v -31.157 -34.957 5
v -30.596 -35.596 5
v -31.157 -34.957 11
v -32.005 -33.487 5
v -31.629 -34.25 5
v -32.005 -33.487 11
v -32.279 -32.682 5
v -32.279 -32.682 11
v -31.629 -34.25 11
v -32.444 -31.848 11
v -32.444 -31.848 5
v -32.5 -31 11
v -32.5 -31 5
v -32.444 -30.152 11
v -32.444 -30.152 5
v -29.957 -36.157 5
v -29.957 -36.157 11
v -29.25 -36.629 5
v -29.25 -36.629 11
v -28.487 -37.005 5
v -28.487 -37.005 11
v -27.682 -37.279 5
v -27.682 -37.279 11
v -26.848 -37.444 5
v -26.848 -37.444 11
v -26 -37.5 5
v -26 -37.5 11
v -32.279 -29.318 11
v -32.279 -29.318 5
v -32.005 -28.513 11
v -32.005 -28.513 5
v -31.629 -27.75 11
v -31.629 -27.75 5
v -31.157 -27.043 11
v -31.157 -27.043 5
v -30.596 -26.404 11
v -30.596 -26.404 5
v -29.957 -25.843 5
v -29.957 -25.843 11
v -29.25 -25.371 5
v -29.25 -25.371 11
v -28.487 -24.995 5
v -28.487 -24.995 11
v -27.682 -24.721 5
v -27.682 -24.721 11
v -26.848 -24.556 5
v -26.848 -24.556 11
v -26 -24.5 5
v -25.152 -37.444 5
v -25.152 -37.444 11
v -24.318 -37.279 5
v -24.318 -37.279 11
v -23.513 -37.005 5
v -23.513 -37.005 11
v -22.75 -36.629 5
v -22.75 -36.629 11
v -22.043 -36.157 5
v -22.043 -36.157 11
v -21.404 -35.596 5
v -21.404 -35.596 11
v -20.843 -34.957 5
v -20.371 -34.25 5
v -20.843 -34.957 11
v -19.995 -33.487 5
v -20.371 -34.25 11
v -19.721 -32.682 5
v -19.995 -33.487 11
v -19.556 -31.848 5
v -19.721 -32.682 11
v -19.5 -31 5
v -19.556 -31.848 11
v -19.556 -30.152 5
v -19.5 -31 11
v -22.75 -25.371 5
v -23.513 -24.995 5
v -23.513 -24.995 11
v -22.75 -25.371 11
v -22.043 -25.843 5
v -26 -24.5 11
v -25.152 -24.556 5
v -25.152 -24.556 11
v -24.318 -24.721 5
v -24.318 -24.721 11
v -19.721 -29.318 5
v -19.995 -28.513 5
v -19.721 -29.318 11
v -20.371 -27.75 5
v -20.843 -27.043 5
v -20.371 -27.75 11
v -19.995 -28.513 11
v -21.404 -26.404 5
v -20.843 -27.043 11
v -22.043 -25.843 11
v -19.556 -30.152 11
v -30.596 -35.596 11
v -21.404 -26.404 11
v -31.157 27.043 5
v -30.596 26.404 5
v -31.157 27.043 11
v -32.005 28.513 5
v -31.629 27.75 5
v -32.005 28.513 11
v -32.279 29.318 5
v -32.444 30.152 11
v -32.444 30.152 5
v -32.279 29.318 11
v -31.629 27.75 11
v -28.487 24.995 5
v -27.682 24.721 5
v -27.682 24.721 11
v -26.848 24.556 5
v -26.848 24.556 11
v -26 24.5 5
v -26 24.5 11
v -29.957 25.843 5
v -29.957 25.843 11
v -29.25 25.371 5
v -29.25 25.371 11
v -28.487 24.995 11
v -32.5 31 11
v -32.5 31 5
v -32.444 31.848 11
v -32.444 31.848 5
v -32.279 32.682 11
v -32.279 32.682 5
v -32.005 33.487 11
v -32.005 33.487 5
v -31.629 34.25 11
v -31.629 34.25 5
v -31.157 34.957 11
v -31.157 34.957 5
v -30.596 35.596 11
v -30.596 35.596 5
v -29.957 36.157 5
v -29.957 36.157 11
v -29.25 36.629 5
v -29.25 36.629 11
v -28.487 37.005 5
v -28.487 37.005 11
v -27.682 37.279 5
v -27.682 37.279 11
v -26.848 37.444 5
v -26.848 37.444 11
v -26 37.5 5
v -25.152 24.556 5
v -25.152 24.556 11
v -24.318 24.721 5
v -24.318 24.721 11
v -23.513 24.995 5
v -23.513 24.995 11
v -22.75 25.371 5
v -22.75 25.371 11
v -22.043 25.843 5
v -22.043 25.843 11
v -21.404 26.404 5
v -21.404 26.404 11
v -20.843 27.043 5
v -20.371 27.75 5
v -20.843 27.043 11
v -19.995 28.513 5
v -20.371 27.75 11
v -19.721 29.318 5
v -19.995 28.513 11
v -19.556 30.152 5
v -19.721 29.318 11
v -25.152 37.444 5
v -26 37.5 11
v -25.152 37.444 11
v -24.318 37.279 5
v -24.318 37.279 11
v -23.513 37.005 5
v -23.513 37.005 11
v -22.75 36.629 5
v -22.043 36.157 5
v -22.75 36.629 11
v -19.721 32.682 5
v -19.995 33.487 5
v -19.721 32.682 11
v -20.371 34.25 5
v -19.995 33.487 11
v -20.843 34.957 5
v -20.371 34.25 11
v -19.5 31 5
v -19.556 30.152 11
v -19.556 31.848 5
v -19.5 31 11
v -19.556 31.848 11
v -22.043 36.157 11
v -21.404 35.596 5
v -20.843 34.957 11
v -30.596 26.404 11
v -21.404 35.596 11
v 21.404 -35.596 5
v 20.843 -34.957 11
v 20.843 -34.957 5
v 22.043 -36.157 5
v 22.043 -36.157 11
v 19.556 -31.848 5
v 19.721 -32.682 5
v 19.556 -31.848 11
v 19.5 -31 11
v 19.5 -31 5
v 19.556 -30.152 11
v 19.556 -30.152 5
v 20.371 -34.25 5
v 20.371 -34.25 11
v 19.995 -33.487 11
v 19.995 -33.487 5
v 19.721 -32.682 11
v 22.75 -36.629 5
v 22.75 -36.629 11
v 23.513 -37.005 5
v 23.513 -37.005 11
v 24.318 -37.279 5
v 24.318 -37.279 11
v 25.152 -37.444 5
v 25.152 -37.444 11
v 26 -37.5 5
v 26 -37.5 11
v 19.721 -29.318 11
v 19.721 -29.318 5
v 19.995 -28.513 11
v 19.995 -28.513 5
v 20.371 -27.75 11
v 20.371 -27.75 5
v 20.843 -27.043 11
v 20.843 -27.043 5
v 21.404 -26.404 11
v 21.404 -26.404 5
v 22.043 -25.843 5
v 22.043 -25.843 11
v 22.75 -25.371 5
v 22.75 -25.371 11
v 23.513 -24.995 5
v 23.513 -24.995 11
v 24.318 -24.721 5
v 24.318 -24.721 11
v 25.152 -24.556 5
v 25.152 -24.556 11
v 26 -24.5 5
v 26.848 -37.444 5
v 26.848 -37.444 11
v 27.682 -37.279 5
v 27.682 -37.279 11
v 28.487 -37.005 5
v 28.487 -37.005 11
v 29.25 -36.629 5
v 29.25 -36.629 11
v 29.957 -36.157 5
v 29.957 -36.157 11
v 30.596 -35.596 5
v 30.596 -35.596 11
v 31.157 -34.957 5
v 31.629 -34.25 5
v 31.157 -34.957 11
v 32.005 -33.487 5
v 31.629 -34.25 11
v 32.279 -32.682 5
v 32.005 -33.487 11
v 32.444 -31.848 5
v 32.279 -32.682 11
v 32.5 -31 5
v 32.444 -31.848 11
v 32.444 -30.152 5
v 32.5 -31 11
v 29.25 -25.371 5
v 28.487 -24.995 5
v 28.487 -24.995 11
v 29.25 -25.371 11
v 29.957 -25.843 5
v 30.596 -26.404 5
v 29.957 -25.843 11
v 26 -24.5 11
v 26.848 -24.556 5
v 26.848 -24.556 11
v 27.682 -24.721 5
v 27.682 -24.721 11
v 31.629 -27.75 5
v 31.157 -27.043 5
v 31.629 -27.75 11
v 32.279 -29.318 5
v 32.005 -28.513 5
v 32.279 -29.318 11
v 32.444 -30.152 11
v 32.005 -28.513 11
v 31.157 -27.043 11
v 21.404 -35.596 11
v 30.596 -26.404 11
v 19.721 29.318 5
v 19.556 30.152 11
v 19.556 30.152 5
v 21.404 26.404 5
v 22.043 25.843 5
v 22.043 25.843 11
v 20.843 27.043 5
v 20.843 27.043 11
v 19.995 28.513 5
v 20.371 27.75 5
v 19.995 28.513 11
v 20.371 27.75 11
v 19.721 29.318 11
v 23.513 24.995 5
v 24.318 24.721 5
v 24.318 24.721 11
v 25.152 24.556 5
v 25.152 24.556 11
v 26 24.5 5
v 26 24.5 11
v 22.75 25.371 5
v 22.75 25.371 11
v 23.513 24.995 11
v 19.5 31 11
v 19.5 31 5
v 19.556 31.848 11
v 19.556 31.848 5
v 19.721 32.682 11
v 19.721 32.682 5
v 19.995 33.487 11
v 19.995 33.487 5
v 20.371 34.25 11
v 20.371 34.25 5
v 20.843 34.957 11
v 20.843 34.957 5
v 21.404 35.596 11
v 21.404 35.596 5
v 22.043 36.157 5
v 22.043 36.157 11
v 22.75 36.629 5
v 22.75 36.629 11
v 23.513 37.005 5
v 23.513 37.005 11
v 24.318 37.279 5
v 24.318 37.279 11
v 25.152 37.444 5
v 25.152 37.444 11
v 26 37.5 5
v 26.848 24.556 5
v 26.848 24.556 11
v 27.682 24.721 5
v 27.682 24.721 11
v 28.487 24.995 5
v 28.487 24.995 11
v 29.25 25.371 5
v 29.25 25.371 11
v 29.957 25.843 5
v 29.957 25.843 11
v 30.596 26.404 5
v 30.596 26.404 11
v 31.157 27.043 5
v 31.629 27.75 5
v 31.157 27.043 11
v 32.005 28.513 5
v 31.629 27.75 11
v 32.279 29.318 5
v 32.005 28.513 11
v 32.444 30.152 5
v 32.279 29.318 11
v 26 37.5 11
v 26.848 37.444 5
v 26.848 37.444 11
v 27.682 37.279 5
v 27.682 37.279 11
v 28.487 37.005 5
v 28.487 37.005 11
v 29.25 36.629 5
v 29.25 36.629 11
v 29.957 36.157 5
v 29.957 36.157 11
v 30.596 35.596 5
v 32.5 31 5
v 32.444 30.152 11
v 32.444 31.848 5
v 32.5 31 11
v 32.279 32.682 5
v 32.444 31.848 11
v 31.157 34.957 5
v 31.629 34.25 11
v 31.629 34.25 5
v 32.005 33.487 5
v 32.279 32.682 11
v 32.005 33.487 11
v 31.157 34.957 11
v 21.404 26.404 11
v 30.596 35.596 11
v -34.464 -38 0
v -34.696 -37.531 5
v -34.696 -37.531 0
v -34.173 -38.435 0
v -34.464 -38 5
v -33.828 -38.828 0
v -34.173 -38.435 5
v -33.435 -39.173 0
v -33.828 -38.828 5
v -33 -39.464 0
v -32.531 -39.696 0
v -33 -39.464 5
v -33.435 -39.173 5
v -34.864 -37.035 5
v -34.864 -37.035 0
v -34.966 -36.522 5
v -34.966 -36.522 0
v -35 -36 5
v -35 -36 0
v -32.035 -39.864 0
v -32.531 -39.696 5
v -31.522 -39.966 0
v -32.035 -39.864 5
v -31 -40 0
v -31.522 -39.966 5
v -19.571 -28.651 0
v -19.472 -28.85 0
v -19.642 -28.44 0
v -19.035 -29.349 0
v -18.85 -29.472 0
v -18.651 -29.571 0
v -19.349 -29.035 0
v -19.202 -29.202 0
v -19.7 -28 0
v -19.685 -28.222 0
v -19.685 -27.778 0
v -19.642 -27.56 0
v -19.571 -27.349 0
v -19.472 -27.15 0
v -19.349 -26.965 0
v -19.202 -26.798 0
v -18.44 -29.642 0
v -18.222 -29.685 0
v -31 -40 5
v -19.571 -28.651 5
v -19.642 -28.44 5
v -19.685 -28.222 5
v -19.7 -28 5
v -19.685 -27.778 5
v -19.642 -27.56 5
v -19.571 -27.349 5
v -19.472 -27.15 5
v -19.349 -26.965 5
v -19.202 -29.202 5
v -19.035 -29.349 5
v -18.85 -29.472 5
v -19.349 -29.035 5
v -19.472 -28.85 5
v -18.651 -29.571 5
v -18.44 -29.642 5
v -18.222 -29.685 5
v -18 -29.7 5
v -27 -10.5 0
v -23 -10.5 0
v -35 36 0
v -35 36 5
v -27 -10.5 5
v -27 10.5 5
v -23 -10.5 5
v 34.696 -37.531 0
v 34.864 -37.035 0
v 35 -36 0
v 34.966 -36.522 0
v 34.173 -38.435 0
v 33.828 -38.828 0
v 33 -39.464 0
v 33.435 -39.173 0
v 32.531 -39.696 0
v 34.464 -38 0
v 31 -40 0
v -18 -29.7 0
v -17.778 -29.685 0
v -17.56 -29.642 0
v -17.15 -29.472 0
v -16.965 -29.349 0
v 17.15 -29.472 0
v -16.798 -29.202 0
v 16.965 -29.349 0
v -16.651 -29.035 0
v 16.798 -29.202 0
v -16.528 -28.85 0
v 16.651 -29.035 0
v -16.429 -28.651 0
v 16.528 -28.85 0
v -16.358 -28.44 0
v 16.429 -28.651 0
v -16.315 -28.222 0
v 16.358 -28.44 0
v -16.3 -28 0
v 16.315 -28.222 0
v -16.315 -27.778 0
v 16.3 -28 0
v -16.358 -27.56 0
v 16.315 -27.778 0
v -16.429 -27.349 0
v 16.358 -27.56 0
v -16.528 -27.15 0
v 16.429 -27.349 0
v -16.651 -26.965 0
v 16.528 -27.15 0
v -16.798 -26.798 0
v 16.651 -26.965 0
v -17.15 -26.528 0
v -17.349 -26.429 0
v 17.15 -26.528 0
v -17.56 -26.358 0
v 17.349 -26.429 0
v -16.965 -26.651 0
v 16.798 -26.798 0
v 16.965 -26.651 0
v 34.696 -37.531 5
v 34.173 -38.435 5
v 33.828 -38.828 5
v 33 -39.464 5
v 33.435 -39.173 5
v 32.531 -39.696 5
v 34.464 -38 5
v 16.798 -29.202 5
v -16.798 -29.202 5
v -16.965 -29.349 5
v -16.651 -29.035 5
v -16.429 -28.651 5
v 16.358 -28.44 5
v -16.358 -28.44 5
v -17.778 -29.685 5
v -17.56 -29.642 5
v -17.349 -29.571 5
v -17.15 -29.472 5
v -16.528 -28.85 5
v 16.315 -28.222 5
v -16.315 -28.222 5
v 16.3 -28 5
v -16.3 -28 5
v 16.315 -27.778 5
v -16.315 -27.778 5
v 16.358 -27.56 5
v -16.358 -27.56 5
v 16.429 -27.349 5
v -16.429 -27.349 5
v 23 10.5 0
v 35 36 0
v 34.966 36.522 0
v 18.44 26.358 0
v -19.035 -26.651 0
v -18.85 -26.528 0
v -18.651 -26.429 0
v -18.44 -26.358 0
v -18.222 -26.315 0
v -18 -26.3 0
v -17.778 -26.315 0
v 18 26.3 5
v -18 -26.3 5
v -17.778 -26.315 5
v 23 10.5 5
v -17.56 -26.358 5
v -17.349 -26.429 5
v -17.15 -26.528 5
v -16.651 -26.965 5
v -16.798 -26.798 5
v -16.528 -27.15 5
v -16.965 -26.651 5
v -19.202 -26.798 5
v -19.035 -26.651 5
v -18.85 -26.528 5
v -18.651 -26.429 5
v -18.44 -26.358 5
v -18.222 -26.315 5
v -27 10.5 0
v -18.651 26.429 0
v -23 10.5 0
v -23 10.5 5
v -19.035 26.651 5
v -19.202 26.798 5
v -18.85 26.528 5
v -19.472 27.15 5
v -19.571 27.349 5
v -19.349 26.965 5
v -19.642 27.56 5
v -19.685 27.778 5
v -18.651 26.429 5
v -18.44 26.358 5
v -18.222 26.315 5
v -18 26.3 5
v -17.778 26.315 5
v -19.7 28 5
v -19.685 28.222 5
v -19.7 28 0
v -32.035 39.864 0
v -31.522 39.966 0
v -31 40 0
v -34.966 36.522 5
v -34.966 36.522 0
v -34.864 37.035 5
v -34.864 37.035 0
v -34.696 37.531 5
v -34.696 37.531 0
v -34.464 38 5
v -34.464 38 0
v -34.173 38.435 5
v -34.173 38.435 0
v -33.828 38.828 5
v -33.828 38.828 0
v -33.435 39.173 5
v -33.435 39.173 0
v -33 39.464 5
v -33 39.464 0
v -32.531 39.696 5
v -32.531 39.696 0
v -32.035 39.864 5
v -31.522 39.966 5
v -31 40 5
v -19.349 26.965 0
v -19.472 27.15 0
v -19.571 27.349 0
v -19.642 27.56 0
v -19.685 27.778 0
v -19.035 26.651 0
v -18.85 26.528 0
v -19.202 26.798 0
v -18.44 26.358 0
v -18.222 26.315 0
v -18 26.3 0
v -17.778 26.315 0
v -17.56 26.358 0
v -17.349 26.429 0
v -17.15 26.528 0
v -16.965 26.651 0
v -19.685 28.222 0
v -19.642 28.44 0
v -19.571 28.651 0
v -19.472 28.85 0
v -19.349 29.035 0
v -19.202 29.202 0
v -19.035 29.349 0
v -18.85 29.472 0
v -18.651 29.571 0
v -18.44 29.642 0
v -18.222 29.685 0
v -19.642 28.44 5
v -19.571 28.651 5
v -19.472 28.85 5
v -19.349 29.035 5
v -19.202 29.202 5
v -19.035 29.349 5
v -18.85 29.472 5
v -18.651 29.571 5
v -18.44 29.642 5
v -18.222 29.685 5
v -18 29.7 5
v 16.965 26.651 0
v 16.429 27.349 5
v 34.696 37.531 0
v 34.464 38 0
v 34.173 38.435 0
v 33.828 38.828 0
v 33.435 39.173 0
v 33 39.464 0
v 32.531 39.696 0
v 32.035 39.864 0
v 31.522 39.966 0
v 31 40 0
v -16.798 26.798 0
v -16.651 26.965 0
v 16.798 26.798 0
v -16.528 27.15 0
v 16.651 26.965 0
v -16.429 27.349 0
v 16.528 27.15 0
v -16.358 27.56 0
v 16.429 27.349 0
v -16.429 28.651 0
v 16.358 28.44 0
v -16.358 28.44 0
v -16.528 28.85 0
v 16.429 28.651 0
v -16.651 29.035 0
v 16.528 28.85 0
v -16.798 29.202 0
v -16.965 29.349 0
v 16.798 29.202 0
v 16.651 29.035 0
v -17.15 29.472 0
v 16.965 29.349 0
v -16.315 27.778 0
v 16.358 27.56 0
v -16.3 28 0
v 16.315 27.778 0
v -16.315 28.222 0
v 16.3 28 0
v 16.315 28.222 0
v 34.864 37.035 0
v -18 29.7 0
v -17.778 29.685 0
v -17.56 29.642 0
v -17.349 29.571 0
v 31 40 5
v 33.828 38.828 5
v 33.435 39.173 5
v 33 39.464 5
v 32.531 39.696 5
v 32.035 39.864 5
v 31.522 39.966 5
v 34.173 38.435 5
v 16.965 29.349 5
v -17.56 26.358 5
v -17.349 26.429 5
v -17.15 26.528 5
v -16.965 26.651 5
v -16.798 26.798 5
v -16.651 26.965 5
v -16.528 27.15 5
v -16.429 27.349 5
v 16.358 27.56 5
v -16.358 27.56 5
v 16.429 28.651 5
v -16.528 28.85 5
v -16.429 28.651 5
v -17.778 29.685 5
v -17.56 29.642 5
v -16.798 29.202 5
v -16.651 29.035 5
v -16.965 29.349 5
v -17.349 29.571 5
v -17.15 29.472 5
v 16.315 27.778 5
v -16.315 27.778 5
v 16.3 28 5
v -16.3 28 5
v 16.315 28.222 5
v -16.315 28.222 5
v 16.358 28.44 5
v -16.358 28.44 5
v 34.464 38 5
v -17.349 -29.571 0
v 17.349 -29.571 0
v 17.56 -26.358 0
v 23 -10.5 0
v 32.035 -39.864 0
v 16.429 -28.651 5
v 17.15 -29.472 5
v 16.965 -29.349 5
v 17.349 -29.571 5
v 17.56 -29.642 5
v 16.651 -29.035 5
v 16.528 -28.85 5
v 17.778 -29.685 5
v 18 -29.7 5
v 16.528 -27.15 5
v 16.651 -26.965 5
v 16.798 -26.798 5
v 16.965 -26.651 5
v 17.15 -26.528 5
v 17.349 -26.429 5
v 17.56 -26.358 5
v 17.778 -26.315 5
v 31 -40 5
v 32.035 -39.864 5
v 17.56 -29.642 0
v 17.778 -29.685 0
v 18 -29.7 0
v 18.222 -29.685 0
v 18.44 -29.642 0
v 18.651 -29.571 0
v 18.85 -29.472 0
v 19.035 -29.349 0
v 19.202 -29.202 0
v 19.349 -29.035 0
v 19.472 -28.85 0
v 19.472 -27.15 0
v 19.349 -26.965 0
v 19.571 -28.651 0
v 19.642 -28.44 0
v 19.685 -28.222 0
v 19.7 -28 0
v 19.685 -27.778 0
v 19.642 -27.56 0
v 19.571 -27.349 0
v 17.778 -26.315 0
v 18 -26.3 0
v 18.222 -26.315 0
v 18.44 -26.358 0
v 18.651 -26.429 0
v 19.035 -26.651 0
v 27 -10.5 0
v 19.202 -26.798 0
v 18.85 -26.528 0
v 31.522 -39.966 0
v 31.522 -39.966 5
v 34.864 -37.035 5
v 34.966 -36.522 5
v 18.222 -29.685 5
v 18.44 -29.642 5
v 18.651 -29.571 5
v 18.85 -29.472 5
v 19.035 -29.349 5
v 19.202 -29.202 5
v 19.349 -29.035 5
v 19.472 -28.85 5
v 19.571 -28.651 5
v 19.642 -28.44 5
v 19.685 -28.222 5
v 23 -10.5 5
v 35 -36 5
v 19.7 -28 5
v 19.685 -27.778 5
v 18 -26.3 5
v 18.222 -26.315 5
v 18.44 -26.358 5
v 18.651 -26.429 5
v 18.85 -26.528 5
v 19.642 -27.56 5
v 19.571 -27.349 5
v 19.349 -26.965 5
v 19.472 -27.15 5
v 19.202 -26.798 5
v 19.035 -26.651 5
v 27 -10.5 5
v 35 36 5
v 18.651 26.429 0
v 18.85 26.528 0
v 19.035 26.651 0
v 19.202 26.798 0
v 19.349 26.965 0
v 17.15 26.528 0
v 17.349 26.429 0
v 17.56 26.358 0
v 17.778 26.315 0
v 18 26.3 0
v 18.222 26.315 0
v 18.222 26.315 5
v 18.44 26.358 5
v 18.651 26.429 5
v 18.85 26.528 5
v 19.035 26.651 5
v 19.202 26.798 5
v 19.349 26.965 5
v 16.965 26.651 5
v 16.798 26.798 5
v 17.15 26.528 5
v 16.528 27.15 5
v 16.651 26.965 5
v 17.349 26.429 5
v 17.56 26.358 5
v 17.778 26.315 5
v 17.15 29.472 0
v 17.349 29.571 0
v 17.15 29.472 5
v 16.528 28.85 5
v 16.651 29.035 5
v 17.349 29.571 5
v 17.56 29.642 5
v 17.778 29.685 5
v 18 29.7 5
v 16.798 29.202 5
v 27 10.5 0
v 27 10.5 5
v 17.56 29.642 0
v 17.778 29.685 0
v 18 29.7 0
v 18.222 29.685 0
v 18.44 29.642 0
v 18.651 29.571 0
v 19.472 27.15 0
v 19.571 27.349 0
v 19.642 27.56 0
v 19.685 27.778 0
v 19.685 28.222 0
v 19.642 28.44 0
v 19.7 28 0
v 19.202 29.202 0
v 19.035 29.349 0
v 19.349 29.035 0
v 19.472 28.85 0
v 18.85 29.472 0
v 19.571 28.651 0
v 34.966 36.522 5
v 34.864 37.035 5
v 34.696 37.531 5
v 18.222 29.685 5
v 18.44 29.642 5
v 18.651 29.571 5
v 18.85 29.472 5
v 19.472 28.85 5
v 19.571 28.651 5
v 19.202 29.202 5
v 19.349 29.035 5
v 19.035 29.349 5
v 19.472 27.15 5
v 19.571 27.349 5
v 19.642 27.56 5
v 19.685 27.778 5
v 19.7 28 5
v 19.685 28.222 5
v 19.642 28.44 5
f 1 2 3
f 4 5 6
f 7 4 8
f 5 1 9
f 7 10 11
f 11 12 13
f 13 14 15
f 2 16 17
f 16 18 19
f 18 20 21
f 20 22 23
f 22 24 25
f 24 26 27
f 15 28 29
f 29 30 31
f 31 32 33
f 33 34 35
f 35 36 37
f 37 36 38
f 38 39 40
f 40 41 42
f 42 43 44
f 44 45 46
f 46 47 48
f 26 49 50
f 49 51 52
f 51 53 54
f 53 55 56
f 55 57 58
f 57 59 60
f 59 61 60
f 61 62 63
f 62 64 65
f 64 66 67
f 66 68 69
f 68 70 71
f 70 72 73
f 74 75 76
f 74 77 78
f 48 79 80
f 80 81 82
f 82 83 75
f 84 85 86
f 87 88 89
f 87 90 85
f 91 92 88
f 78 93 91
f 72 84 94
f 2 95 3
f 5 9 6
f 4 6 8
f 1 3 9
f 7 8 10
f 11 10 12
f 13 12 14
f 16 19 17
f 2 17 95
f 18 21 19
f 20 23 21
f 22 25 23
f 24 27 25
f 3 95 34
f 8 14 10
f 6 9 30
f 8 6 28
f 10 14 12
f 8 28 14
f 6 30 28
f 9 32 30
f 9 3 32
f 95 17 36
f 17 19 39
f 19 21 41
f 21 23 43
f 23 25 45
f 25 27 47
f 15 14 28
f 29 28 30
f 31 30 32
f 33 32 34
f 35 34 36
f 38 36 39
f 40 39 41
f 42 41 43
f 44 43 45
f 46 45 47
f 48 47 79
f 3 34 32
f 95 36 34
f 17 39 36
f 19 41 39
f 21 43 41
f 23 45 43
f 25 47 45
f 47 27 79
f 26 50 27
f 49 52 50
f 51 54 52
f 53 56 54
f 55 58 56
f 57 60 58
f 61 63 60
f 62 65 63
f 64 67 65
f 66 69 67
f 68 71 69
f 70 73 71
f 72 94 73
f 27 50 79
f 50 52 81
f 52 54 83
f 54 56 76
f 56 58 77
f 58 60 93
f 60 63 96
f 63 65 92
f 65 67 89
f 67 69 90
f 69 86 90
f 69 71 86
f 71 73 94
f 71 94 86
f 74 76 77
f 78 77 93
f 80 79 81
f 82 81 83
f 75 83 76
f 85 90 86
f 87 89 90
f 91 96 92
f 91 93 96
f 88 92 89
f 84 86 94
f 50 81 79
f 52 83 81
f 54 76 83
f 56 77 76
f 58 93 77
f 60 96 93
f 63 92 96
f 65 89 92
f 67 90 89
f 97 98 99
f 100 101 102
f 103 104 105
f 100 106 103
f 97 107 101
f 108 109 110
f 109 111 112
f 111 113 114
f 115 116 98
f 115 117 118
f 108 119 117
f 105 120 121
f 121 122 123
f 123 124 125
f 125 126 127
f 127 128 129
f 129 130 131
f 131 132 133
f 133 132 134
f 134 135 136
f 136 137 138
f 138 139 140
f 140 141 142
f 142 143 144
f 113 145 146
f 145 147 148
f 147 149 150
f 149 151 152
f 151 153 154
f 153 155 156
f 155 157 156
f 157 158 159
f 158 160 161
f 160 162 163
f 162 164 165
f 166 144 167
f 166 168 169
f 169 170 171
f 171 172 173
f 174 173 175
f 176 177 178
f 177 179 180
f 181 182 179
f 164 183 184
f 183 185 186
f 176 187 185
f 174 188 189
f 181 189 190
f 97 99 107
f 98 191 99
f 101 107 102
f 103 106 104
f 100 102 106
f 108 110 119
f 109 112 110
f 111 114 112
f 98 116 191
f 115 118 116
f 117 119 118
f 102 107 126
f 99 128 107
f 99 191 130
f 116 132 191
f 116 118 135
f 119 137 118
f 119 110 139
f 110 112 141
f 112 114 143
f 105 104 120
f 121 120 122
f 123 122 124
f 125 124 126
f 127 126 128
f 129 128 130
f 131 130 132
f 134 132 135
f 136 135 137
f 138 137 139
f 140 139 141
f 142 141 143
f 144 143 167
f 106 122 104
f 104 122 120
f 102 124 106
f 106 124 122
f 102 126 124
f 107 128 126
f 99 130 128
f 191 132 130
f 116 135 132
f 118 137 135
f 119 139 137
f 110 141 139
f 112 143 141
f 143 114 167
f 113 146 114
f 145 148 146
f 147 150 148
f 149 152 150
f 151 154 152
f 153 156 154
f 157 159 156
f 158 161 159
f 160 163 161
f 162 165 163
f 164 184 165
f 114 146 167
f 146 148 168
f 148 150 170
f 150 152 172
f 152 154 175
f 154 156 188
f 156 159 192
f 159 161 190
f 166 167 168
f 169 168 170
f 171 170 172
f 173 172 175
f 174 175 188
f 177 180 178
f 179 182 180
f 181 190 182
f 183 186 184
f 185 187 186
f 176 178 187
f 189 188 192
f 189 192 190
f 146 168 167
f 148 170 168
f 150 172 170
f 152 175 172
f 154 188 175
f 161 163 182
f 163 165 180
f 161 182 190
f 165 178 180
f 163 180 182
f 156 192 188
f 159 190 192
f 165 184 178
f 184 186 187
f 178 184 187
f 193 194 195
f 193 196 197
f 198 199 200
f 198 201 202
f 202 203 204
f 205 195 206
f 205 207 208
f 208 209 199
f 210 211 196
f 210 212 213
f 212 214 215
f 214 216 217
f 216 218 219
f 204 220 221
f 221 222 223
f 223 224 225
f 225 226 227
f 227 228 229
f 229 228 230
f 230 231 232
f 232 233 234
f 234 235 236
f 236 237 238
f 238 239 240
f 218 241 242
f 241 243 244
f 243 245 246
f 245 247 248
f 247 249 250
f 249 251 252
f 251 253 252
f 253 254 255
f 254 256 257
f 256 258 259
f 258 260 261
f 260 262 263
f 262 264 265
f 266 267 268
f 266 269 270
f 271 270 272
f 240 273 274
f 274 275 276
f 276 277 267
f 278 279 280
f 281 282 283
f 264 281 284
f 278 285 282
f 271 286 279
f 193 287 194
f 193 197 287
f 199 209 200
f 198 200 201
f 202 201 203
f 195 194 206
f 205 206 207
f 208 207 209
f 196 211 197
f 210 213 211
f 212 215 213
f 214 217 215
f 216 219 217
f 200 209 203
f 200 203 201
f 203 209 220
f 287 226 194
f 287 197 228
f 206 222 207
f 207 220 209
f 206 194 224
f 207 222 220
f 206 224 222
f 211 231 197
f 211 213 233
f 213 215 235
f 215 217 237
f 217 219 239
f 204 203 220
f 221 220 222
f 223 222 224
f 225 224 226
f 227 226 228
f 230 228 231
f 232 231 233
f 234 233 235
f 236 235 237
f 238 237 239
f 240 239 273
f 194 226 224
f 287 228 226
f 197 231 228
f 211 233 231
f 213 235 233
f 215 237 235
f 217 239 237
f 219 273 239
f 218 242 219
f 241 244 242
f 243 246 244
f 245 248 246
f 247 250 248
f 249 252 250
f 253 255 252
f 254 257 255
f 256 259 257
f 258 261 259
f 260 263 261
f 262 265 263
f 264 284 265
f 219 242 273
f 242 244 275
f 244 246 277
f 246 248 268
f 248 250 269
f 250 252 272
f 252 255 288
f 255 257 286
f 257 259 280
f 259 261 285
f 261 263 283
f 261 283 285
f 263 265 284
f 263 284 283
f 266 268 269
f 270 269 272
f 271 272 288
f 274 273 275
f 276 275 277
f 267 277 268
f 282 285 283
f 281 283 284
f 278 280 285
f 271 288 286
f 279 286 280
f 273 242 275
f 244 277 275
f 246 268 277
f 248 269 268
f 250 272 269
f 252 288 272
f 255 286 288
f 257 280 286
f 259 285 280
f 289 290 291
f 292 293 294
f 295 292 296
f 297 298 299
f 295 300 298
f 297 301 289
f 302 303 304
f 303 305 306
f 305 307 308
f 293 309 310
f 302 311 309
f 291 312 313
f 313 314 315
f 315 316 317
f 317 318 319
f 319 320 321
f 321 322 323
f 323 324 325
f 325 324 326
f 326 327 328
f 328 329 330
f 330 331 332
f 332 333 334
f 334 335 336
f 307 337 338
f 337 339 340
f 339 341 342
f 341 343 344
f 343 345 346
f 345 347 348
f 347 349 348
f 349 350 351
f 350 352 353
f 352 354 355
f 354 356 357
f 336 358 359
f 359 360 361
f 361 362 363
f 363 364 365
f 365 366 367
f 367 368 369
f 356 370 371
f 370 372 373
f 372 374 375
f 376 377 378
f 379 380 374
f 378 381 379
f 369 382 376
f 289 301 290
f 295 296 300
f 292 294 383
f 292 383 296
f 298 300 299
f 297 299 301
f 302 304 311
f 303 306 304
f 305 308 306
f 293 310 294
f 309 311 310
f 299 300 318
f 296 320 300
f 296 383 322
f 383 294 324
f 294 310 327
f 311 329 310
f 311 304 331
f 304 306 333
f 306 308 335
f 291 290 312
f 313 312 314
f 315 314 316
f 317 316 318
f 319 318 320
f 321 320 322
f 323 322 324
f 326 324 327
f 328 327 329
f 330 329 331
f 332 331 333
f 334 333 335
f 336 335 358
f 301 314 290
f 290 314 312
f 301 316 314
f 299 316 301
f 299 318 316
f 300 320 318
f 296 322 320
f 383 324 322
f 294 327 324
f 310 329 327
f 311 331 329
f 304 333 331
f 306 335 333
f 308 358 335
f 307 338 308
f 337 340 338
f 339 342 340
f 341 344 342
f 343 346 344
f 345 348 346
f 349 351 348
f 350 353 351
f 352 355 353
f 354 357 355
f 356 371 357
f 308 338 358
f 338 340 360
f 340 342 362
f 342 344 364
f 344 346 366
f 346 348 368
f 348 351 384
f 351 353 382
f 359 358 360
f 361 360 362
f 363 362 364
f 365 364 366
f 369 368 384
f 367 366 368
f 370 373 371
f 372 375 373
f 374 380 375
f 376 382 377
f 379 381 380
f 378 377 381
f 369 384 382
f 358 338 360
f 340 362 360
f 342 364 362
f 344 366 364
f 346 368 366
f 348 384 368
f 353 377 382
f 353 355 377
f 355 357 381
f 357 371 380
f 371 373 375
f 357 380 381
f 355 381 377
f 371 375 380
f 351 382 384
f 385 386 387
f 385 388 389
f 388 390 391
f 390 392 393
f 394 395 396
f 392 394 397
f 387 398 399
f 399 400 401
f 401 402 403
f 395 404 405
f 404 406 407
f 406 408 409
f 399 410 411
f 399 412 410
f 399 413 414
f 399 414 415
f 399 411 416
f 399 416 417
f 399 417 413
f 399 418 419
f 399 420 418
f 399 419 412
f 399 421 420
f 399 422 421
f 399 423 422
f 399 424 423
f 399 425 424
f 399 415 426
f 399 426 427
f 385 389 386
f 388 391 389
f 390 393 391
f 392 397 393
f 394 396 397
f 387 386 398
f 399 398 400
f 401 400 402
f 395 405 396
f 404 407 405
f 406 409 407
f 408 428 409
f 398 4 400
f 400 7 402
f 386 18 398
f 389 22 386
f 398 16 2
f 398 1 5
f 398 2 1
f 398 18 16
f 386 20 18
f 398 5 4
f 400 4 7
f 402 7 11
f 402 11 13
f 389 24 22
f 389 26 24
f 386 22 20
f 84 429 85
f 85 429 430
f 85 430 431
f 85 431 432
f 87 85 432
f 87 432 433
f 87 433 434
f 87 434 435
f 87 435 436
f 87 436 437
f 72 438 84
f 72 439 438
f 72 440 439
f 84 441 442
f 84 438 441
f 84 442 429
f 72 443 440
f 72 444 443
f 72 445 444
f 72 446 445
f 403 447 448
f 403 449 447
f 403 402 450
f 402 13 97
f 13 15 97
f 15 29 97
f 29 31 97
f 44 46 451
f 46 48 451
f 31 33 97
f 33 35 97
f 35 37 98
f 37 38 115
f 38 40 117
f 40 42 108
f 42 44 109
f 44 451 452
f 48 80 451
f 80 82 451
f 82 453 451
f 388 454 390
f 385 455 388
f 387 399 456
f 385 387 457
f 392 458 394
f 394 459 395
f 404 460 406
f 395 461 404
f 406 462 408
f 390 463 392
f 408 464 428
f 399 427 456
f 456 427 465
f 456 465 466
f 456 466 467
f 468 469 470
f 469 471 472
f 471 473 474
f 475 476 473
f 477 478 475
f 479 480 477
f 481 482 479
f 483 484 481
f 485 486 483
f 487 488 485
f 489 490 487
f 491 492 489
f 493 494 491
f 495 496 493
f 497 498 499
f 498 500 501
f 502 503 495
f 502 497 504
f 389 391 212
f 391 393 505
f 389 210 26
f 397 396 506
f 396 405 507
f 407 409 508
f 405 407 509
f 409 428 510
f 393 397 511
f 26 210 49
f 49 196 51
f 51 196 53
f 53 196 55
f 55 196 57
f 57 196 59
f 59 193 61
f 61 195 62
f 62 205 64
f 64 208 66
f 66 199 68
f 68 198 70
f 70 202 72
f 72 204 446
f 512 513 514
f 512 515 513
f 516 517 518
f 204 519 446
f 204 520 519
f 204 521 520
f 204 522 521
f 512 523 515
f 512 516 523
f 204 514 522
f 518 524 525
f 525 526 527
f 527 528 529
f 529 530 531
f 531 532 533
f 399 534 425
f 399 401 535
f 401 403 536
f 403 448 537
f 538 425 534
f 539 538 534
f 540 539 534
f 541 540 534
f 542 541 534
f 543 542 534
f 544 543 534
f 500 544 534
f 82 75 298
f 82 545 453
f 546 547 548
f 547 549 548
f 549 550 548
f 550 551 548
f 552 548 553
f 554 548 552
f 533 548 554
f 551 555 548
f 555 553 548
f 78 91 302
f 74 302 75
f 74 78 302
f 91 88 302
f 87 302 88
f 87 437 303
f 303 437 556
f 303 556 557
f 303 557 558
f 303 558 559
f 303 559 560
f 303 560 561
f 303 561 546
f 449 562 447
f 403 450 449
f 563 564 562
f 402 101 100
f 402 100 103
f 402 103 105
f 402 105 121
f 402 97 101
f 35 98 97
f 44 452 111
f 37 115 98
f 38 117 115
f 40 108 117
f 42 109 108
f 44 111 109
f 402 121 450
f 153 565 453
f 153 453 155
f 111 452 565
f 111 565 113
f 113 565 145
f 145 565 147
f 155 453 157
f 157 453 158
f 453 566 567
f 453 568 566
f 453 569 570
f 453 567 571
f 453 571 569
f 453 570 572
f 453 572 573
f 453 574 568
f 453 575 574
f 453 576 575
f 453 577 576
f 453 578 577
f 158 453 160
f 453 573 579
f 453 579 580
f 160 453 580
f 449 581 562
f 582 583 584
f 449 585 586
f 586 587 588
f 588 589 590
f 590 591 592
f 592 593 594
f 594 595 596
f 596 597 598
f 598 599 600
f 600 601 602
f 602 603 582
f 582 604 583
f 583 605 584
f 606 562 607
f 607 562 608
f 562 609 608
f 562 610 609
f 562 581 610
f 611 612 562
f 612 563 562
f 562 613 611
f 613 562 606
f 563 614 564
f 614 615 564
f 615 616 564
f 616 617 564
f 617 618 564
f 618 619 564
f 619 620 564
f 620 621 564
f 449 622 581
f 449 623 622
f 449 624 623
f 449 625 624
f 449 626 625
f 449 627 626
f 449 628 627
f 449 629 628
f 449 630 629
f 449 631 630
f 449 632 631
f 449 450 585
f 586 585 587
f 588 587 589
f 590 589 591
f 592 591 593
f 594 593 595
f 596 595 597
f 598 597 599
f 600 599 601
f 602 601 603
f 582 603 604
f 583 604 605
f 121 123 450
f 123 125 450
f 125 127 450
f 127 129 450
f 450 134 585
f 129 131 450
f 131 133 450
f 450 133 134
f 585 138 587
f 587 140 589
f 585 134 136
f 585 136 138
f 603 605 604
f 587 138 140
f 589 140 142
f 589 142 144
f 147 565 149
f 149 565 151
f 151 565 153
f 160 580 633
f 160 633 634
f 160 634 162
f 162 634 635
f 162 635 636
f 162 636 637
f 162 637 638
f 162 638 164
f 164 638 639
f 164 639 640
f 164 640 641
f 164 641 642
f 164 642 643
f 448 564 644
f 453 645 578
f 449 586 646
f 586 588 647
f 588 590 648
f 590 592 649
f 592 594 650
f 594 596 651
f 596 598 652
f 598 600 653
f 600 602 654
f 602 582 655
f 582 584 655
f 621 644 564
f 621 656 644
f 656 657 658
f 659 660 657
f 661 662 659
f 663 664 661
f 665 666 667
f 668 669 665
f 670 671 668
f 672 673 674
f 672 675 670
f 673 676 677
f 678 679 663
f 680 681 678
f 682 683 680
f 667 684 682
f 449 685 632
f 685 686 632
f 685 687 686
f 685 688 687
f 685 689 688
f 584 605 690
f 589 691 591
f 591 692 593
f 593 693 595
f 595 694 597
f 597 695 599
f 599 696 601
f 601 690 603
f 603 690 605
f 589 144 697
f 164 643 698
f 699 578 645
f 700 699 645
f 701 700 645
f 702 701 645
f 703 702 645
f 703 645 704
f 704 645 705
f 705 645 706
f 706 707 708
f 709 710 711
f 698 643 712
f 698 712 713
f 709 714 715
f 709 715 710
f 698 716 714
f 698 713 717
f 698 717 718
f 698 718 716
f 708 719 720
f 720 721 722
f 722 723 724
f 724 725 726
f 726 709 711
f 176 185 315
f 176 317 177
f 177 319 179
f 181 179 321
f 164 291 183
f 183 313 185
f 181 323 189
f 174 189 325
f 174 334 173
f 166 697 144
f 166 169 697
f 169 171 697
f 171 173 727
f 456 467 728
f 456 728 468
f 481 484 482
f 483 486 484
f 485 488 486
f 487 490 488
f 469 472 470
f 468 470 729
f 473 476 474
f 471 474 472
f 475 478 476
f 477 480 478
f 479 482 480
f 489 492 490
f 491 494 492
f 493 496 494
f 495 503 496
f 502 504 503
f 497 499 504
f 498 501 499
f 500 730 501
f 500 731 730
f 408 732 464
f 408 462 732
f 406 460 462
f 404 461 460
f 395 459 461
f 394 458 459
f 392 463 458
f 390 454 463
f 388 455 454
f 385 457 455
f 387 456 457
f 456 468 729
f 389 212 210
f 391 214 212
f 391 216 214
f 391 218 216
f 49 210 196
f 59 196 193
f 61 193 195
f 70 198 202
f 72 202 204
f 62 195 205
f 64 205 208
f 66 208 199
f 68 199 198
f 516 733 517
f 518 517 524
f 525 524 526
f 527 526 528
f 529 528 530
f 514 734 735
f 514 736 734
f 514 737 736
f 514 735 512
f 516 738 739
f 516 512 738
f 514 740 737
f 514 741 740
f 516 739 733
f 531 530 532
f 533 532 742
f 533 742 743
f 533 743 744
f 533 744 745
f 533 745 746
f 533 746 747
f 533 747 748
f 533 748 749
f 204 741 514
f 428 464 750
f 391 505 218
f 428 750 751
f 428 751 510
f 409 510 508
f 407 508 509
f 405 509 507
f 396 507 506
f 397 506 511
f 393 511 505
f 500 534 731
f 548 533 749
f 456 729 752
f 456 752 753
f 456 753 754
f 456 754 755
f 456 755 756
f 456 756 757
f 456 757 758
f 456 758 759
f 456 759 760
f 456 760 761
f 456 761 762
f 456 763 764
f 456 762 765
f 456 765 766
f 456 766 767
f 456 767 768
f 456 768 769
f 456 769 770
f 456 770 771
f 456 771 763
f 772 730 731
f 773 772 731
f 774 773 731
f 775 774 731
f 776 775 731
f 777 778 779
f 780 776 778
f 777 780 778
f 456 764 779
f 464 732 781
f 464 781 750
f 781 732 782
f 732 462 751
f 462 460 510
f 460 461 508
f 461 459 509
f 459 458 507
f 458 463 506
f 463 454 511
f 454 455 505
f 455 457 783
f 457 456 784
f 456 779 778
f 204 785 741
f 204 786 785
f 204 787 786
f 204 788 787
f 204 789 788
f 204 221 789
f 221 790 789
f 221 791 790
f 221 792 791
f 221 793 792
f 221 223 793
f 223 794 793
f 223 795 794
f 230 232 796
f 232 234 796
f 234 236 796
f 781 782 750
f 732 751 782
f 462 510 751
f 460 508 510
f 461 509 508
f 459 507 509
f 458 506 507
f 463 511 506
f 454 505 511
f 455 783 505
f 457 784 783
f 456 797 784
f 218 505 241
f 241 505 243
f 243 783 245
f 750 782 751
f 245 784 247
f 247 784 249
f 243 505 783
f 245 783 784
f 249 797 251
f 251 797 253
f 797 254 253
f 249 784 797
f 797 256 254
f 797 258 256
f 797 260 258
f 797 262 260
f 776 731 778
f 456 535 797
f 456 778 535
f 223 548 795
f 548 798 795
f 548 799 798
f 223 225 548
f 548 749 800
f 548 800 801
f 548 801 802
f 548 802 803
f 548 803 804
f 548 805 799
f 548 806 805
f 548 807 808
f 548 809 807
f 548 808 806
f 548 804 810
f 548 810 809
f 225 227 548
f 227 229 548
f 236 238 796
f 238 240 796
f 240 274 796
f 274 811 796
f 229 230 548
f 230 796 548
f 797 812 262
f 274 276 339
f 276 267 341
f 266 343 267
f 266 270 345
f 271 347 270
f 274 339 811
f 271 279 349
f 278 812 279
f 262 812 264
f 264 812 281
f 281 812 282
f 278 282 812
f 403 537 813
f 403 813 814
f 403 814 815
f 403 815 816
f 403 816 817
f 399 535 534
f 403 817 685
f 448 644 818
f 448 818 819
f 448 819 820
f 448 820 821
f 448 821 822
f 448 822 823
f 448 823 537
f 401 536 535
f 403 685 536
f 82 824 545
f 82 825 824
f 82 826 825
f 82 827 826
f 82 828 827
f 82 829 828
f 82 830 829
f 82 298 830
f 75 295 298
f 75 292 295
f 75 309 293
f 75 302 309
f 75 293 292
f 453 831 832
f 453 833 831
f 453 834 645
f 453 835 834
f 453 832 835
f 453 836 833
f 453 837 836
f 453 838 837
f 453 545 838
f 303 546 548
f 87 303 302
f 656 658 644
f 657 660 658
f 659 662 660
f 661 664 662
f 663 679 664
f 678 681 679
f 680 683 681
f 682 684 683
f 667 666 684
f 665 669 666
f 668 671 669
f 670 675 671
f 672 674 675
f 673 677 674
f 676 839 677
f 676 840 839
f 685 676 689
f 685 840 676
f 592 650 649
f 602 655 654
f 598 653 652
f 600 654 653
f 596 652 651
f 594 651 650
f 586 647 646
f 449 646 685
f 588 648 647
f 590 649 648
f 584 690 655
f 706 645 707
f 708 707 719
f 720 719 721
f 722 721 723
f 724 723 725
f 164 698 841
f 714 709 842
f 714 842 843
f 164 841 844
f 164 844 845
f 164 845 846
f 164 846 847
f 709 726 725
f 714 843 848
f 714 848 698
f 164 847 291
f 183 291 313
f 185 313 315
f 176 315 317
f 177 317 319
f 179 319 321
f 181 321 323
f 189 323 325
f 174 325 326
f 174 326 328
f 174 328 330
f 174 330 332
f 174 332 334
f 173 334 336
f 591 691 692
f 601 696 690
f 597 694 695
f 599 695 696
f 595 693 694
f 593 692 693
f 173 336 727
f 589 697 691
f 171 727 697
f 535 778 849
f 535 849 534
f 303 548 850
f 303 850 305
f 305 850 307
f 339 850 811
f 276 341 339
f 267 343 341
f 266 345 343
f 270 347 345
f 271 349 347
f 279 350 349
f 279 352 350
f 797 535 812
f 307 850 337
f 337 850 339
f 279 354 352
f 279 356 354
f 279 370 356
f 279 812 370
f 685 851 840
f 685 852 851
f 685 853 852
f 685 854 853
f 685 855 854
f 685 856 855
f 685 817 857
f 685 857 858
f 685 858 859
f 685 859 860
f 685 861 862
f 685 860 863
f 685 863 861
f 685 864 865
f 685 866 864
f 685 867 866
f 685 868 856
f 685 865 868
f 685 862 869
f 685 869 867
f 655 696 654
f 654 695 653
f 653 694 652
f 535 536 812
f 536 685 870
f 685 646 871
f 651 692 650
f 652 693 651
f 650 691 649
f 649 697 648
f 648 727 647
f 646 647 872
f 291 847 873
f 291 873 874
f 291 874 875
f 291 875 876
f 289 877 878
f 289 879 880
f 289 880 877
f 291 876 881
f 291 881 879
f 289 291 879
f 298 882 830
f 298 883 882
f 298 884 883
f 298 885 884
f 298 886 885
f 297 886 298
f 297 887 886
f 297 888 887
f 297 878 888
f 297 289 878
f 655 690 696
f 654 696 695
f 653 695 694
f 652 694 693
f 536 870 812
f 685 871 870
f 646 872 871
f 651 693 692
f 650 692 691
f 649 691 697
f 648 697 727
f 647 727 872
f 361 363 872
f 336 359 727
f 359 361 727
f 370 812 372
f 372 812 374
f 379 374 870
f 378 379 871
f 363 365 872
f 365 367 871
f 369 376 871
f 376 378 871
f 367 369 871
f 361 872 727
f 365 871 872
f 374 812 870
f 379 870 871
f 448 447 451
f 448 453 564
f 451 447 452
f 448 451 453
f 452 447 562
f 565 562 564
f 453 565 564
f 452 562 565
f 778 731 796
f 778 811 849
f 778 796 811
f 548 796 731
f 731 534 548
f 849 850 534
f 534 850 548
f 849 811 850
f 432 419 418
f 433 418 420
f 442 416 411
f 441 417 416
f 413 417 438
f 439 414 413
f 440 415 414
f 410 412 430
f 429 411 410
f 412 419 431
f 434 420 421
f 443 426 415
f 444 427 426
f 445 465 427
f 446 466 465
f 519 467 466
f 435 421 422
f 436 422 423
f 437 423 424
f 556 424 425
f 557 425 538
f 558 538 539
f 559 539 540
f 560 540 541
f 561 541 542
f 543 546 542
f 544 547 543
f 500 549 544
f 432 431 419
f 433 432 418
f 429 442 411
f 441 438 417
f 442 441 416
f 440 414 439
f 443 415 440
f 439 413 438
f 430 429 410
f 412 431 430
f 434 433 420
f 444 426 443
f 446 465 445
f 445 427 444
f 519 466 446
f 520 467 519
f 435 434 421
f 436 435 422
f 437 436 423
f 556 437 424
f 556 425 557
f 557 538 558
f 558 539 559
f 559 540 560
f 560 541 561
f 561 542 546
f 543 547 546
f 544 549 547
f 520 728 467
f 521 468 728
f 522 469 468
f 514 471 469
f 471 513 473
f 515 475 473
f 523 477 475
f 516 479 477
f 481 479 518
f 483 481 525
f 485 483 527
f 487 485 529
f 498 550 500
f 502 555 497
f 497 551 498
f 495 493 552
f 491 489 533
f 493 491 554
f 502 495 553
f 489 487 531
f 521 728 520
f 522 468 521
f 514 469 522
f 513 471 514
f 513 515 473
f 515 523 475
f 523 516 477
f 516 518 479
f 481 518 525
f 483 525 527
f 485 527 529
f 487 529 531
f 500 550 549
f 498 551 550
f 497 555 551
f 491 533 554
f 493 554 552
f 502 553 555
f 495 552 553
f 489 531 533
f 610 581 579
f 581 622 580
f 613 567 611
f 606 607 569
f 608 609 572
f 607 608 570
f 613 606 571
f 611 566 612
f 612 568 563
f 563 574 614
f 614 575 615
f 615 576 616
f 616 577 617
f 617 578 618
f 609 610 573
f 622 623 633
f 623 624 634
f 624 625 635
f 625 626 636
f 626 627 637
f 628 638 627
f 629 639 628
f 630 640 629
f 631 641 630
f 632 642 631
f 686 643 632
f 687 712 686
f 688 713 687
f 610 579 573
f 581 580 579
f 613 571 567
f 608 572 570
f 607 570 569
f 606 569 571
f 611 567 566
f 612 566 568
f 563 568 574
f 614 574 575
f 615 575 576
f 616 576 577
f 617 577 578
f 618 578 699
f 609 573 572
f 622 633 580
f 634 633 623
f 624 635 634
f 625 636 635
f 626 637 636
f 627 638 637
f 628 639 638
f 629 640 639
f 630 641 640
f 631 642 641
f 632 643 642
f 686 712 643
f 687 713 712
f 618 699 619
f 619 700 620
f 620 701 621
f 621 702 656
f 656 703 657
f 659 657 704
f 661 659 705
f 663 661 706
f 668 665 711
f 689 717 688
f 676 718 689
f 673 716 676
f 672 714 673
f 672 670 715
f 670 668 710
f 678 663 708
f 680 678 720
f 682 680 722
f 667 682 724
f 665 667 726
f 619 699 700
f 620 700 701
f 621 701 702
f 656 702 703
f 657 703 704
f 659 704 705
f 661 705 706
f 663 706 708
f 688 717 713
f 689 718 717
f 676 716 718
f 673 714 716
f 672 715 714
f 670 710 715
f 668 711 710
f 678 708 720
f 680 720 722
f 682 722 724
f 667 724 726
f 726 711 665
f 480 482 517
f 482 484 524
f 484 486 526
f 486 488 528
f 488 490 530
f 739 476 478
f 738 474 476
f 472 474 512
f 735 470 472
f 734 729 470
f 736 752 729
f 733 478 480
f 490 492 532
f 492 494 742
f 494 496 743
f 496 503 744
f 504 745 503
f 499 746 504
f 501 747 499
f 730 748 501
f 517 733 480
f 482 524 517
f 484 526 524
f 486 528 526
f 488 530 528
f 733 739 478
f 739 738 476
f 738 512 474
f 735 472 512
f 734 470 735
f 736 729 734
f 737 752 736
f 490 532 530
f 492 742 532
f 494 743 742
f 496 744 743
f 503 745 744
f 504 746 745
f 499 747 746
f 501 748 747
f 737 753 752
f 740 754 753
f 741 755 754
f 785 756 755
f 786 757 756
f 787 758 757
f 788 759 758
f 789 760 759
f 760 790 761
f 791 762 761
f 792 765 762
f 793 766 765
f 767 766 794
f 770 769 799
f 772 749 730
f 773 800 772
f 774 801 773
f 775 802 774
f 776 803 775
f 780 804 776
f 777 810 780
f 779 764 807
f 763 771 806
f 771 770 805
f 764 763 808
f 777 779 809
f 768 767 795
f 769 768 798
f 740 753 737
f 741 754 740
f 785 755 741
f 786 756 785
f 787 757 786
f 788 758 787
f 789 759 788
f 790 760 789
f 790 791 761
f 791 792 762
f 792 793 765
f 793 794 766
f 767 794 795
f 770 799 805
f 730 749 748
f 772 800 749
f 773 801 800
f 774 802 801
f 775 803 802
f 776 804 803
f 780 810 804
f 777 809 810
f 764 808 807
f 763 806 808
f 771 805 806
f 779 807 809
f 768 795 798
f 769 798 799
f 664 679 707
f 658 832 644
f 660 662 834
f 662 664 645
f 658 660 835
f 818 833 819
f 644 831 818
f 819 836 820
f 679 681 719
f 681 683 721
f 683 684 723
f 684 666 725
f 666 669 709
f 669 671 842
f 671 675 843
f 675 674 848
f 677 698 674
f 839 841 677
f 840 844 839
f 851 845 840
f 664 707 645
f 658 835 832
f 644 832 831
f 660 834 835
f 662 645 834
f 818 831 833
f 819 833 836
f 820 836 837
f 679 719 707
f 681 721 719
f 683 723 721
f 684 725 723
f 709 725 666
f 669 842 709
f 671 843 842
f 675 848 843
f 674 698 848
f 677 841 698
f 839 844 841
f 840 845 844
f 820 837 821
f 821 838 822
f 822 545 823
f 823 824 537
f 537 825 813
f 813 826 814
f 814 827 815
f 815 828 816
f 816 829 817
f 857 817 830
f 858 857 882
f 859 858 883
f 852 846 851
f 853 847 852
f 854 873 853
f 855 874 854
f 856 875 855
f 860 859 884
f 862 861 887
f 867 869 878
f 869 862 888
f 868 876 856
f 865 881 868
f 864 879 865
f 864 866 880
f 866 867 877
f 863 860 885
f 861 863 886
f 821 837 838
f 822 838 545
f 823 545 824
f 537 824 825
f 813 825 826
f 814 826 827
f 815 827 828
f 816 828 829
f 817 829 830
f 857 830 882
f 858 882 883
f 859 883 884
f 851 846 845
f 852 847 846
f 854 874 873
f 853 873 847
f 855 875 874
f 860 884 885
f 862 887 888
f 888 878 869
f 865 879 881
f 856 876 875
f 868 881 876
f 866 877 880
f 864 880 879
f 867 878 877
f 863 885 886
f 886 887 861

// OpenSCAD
// PROVISIONAL 70 x 80 mm rear plate. Fixed wall contact is via four 6 mm feet.
// This plate is NOT a servo-ready mount until the rib position, strap route,
// hinge datum, and structural attachment are measured and tested.
include <parameters.scad>

$fn = 48;
assert(rear_plate_width <= rear_flat_width);
assert(rear_plate_height <= rear_flat_height);
assert(rear_plate_width > rear_plate_slot_pitch + rear_plate_slot_width + 8);
assert(rear_plate_height > rear_plate_slot_height + 20);

module rear_plate_2d() {
    offset(r = rear_plate_corner_radius)
        square([rear_plate_width - 2 * rear_plate_corner_radius,
                rear_plate_height - 2 * rear_plate_corner_radius], center = true);
}

module rear_servo_mount() {
    difference() {
        union() {
            linear_extrude(height = rear_plate_thickness)
                rear_plate_2d();
            // Corner feet produce a nominal gap above an unlocated bump.
            // If the bump is beneath a foot, move the feet after measuring.
            for (side = [-1, 1], top = [-1, 1])
                translate([side * (rear_plate_width / 2 - 9),
                           top * (rear_plate_height / 2 - 9),
                           rear_plate_thickness])
                    cylinder(d = 13, h = rear_plate_standoff);
        }
        // Slots accept an OPTIONAL strap. Its complete path is unverified.
        for (side = [-1, 1])
            translate([side * rear_plate_slot_pitch / 2, 0,
                       rear_plate_thickness / 2])
                cube([rear_plate_slot_width, rear_plate_slot_height,
                      rear_plate_thickness + 0.2], center = true);
        // Four provisional M3 interface holes for future support hardware.
        for (side = [-1, 1], top = [-1, 1])
            translate([side * rear_plate_mount_hole_pitch / 2,
                       top * (rear_plate_height / 2 - 12), -0.1])
                cylinder(d = rear_plate_mount_hole_d,
                         h = rear_plate_thickness + 0.2);
    }
}

rear_servo_mount();
